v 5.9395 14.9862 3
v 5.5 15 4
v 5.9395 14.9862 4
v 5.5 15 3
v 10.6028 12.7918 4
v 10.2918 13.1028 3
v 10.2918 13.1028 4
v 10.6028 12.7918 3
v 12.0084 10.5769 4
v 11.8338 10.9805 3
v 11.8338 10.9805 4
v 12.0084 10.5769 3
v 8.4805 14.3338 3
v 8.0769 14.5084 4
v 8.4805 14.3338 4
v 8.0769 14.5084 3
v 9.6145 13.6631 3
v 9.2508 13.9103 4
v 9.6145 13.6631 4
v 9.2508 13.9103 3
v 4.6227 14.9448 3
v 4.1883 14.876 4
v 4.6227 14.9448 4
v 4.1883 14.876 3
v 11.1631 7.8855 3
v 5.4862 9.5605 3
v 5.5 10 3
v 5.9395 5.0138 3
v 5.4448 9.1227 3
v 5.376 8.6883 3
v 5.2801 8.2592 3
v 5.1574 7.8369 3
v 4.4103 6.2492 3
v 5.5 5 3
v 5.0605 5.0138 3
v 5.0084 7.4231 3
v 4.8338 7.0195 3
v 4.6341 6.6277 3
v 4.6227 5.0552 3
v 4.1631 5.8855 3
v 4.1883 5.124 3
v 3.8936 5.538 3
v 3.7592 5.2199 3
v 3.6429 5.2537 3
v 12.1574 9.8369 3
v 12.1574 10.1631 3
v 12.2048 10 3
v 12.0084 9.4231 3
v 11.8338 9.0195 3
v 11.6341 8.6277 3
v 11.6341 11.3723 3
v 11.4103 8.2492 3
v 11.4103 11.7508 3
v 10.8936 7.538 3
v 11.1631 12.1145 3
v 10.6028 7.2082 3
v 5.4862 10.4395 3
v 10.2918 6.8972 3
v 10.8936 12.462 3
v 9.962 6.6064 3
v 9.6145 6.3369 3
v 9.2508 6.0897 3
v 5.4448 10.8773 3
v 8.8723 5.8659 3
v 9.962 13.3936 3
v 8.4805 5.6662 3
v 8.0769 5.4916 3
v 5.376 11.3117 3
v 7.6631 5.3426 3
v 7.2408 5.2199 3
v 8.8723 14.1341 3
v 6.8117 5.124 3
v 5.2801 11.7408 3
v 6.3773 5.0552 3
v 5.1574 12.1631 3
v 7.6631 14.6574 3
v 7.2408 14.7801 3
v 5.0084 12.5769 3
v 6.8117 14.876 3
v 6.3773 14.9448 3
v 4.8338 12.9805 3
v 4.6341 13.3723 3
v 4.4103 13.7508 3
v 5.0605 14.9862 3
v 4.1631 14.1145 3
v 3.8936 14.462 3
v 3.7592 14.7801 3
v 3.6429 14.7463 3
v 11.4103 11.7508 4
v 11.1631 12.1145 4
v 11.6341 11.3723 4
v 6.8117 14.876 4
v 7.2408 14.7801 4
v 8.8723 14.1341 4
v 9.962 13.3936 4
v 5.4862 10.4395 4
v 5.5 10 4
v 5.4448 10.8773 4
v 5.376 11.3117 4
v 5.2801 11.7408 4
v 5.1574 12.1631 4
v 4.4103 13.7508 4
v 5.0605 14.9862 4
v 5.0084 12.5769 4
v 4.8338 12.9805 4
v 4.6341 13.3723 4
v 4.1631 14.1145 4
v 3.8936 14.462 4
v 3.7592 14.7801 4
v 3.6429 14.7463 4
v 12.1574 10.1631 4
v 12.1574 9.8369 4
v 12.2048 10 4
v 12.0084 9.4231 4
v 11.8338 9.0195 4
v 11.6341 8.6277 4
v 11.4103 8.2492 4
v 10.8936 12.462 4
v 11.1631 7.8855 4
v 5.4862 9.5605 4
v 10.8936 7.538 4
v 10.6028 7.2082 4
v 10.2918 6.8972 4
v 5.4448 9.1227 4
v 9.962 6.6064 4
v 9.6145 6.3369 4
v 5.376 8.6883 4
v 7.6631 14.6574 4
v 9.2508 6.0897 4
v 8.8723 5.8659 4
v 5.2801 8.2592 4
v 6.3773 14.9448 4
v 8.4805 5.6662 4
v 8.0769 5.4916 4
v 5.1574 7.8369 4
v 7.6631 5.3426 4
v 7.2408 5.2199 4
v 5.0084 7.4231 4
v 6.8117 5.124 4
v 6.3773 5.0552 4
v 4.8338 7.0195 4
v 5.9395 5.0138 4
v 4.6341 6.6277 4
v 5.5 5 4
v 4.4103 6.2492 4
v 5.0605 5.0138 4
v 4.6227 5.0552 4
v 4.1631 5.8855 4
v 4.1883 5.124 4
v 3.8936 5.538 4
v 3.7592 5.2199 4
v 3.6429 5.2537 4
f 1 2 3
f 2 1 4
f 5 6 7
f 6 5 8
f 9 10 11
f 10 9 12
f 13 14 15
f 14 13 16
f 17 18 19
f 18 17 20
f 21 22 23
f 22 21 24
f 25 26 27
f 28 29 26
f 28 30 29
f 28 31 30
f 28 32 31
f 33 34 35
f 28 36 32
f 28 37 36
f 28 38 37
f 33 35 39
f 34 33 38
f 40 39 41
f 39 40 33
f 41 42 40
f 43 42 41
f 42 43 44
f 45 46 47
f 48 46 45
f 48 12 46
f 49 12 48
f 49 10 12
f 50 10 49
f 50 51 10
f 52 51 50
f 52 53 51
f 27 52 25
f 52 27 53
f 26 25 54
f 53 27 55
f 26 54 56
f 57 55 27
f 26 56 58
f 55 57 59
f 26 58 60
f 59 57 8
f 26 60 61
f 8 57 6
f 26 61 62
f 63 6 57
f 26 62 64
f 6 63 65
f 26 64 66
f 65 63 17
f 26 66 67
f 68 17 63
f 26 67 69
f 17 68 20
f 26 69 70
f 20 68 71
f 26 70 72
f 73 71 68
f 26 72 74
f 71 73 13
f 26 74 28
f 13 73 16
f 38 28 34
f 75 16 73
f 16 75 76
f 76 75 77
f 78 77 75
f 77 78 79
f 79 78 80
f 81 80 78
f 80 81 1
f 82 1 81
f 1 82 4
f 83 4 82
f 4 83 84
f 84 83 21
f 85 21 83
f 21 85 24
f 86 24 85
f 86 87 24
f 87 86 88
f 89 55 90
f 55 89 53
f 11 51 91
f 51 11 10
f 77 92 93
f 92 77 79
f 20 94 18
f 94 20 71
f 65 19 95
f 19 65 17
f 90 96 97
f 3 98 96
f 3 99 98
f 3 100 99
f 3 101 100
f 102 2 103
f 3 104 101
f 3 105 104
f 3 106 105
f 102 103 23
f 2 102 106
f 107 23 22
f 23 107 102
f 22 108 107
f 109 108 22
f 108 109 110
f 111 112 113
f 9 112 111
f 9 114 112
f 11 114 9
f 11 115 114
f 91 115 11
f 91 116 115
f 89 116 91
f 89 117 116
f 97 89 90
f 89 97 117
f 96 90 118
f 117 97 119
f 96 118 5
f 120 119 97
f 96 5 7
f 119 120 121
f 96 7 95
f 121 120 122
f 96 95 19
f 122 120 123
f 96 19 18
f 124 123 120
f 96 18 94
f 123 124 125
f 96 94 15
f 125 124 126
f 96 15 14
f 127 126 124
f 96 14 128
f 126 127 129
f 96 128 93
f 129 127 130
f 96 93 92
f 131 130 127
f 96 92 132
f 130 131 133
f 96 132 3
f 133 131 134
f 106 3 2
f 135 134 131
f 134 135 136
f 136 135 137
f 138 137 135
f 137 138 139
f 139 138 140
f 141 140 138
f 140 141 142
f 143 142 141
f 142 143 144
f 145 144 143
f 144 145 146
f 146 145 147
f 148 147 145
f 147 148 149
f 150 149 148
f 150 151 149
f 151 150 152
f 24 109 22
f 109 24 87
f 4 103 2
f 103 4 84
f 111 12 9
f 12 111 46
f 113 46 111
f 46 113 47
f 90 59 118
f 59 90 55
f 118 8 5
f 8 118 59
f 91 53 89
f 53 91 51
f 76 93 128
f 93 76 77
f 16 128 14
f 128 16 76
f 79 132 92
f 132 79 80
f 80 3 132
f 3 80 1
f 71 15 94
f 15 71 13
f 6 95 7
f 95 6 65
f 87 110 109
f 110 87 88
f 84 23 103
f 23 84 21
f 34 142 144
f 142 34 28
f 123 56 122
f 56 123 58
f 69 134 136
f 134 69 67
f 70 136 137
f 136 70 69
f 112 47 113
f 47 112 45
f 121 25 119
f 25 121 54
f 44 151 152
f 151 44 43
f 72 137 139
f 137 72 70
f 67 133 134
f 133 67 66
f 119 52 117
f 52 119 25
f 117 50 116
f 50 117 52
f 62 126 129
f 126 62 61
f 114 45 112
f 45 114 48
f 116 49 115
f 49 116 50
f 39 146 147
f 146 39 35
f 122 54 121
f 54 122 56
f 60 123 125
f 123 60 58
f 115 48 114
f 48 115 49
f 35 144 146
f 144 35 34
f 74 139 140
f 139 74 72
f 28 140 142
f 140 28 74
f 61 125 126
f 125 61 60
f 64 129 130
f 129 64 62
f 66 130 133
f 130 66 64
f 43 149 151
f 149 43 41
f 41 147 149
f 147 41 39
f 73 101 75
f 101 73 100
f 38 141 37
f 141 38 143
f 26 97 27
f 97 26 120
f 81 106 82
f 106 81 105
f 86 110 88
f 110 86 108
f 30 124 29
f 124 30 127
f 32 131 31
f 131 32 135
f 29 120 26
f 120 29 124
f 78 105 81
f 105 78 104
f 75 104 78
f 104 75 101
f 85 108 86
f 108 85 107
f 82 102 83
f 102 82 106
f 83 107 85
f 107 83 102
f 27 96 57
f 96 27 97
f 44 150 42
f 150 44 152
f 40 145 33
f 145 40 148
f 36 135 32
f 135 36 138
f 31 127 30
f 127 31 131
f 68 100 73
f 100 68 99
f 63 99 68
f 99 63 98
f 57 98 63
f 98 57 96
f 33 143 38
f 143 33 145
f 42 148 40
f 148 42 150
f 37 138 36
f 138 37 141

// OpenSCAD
$fn = 100;
s = 0.0001;

module base(){
    minkowski(){
        translate([1,1,0]) cube([18, 18, 2]);
        cylinder(1,1,1);
    }
}

module thore(thore_radius, tube_diameter, angle){
    rotate_extrude(angle=angle) {
        translate([thore_radius - tube_diameter/2, 0])circle(d=tube_diameter);
    }
}
//translate([0,0,-10]) color("red")
//base();

translate([5.5,10,3])
union(){
    difference(){
        intersection(){
            translate([0,-2,0]) cylinder(1, 7, 7);
            translate([0,2,0]) cylinder(1, 7, 7);
        }
        translate([-7,0,-1]) cylinder(3, 7, 7);
    }
}
